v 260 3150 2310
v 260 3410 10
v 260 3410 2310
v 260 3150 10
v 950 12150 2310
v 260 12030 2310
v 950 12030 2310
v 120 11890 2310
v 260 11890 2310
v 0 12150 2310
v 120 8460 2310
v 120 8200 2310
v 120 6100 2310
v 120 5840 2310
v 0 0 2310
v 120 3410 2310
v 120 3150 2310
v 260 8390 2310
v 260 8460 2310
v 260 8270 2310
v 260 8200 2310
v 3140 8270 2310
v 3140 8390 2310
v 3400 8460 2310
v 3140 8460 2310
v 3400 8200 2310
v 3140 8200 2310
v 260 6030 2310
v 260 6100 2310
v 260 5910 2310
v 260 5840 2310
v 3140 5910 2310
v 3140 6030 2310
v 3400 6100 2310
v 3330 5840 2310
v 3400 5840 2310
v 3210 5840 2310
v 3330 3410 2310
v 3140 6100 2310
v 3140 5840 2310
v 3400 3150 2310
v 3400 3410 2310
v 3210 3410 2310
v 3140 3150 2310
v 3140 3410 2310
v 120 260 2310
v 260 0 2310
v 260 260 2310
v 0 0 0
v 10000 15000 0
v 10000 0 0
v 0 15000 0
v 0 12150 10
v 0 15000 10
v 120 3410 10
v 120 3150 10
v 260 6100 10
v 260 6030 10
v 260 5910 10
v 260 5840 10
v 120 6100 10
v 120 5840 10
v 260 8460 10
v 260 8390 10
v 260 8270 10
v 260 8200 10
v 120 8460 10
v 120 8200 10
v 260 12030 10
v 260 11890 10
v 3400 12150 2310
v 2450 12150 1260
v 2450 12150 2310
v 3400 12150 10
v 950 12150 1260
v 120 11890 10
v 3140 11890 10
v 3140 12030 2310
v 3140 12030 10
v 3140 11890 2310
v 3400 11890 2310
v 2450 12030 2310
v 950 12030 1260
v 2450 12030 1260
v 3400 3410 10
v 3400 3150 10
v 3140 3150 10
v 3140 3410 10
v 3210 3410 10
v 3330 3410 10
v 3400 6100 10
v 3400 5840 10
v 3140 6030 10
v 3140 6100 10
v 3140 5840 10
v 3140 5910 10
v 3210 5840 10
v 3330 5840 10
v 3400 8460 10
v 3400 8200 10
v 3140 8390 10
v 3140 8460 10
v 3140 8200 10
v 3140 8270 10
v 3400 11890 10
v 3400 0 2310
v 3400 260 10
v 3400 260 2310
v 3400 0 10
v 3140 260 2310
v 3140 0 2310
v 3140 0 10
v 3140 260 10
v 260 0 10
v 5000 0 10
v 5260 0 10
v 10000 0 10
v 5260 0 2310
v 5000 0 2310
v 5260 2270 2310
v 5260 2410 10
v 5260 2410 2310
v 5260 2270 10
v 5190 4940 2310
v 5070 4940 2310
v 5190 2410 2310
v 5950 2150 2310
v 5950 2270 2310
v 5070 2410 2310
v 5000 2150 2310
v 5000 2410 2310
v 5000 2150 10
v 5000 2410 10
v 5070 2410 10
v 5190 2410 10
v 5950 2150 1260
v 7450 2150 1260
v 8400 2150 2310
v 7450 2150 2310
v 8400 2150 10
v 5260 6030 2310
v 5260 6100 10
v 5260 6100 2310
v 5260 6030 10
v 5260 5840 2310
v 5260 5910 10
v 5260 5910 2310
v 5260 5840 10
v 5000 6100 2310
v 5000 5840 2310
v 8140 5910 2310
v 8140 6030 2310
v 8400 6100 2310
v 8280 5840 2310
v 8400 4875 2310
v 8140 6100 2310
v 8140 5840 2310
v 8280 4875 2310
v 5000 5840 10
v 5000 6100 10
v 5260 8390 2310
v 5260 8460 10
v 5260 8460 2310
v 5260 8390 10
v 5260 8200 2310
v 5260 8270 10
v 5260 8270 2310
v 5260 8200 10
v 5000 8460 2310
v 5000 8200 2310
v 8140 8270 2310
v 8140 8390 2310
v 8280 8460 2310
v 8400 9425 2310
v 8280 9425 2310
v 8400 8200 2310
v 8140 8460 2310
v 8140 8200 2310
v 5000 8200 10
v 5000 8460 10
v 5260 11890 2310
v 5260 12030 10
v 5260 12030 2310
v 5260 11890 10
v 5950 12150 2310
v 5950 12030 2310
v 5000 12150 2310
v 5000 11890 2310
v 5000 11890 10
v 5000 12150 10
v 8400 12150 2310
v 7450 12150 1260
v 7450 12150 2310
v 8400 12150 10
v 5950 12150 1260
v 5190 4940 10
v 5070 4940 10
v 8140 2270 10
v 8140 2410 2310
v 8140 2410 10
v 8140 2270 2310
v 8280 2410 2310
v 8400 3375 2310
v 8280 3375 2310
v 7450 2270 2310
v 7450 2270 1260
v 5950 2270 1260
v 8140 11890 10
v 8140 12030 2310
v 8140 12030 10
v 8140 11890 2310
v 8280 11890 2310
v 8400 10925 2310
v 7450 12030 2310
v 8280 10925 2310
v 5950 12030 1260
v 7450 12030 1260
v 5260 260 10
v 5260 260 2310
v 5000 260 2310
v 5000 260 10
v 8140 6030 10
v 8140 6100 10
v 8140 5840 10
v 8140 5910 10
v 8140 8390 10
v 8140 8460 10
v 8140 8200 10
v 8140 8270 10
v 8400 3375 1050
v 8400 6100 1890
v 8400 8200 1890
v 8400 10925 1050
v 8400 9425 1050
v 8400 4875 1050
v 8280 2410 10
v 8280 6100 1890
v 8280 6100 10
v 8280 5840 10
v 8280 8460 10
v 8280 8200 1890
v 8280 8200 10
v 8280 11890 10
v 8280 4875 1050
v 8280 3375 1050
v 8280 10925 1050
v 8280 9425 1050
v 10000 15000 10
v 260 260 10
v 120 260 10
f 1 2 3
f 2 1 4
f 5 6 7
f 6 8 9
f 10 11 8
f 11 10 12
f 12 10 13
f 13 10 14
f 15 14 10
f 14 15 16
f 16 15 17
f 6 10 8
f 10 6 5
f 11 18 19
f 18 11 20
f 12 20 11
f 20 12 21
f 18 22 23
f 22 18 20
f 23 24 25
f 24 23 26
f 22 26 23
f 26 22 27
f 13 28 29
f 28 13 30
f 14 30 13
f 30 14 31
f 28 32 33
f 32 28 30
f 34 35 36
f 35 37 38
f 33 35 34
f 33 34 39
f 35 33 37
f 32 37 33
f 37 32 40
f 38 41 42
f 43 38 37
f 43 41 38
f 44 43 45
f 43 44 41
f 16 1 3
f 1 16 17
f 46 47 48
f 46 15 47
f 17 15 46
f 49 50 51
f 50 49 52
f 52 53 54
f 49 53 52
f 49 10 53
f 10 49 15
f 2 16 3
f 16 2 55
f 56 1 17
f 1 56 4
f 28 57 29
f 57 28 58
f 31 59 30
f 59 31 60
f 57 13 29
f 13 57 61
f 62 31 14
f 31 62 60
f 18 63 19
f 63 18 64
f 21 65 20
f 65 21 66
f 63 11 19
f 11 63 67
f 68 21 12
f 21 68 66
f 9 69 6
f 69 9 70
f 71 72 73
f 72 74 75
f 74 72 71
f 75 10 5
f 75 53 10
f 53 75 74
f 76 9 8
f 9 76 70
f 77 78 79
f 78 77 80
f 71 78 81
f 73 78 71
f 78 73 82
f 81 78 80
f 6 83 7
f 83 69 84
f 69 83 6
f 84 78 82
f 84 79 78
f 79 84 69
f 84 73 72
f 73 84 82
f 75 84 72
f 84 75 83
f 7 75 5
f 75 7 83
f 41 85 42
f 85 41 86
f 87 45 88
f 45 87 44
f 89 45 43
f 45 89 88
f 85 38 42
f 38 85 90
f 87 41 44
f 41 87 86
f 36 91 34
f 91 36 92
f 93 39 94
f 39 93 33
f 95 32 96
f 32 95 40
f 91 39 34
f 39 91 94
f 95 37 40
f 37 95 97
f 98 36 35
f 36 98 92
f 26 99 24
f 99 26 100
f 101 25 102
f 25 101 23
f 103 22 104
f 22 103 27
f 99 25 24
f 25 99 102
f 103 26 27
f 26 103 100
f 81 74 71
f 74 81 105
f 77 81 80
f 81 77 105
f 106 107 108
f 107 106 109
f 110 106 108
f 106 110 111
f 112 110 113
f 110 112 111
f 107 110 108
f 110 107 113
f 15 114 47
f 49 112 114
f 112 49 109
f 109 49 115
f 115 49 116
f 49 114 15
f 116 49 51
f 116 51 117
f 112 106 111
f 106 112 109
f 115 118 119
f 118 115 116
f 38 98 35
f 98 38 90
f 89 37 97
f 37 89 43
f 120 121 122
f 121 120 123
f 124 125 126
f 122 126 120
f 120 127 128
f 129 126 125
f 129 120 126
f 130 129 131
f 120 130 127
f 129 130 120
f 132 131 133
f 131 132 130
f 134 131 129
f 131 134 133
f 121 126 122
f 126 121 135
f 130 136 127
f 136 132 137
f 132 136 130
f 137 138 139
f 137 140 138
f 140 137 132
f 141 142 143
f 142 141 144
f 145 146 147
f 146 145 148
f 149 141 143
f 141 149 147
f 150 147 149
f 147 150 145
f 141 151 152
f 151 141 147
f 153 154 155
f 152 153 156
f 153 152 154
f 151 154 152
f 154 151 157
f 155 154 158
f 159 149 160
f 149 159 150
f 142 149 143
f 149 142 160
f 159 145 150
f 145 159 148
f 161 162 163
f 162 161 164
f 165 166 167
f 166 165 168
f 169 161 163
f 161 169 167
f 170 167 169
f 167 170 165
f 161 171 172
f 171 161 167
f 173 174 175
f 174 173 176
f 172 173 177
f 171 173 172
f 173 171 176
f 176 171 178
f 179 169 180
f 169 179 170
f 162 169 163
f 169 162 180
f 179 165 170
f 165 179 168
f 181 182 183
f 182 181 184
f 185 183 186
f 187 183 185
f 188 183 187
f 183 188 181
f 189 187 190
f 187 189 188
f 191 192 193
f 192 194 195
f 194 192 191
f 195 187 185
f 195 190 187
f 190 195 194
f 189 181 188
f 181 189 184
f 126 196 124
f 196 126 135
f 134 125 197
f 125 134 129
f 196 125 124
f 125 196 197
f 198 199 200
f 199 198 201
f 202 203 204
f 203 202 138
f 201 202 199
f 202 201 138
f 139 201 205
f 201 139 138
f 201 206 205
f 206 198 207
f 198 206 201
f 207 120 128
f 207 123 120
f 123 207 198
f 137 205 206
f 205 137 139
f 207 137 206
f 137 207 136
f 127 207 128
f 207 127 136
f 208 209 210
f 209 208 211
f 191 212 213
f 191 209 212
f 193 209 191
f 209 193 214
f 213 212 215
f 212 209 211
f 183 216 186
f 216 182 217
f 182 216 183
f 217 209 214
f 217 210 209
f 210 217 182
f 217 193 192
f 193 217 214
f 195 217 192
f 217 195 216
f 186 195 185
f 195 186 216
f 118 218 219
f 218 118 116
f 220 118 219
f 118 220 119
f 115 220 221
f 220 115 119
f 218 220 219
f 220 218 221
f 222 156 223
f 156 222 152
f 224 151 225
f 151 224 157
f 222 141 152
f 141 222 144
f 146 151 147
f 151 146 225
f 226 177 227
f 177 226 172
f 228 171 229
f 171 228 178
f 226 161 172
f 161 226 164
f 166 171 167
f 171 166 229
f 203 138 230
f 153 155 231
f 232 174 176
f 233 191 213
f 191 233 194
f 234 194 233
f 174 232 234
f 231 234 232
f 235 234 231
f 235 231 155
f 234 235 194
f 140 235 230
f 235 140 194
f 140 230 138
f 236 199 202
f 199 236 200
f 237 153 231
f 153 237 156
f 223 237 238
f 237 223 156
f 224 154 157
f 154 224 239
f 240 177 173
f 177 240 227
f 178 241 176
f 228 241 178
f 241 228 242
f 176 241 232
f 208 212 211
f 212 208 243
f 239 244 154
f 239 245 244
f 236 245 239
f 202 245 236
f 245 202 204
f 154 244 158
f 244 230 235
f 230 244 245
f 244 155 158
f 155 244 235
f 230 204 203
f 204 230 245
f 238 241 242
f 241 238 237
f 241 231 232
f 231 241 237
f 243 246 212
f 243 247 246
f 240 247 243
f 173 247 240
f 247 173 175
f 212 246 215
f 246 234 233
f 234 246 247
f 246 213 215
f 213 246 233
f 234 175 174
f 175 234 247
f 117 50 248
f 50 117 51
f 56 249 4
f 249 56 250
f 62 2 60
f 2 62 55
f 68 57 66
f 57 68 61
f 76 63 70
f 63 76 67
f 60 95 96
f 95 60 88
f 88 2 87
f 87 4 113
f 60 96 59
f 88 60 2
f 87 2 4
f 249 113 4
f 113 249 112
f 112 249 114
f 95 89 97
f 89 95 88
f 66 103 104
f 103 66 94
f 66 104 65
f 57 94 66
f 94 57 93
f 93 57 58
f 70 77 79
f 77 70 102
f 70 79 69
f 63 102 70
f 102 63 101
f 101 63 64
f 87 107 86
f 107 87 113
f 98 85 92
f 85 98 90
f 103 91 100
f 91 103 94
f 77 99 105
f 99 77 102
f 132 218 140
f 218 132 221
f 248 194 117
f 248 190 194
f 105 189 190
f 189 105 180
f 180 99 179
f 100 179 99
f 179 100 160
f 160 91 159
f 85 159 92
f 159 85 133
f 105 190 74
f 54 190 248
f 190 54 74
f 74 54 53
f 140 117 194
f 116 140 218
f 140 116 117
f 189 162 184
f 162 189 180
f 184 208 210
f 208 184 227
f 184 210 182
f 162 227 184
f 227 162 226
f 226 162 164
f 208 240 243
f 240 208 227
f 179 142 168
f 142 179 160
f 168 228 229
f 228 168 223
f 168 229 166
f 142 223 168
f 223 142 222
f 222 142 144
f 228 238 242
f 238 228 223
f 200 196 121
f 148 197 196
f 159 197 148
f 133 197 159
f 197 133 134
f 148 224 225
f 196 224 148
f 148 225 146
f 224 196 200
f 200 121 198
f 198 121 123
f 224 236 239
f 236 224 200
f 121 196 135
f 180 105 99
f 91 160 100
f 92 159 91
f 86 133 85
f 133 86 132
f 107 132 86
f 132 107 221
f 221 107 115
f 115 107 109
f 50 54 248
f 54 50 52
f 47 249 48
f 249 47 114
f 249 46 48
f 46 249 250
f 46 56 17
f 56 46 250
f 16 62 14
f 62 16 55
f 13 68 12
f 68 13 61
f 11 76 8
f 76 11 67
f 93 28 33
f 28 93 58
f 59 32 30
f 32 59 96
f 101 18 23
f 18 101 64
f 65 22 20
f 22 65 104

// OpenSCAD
terrenoAncho=10000;
terrenoLargo=15000;

junta=10;
block=200;
jblock=junta+block;
muro=120;
columna=260;
//altura=2600;
altura=jblock*11;
echo(altura);
centroColumna=(columna-muro)/2;

anchoVentana=1500;

// límite de terreno
cube([terrenoAncho, terrenoLargo, 10]);

// muro de medida
//translate([-muro, 0, 0])
//cube([muro, 12150, altura]);

function SumArray(x=0,Index=0)=x[Index]+((Index<=0)?0:SumArray(x=x,Index=Index-1));
function Sum(x)=SumArray(x,Index=len(x)-1);

module columnas(tramos=[]) {
    for(x=[0: len(tramos)-1]) {
        //echo(x, (columna*x)+SumArray(muros, x));
        translate([0, (columna*x)+SumArray(tramos, x), 0])
        cube([columna, columna, altura]);
    }
}

mx1=[2890,2430,2100,3430];
mx2=[1890,3430,2100,3430];
my=[2880,1600,2880];

// fila 1 de columnas en x
cube([columna, columna, altura]);
translate([0, columna, 0])
columnas(mx1);

// muro 1.1 x
translate([0, columna, 0])
cube([muro, mx1[0], altura]);

// muro 1.2 x
translate([0, (columna*2)+SumArray(mx1,0), 0])
cube([muro, mx1[1], altura]);

// muro 1.3 x
translate([0, (columna*3)+SumArray(mx1,1), 0])
cube([muro, mx1[2], altura]);

// muro 1.4 x
translate([0, (columna*4)+SumArray(mx1,2), 0])
cube([muro, mx1[3], altura]);

// muro 1.3 y
translate([columna, SumArray(mx1,1)+(columna*2)+centroColumna, 0])
cube([my[0], muro, altura]);

// muro 1.4 y
translate([columna, SumArray(mx1,2)+(columna*3)+centroColumna, 0])
cube([my[0], muro, altura]);

// muro 1.5 y (ventana)
translate([columna, SumArray(mx1,3)+(columna*5)-muro, 0])
union() difference() {
    cube([my[0], muro, altura]);
    
    translate([(my[0]-anchoVentana)/2, -1, jblock*6])
    cube([anchoVentana, muro+2, jblock*5]);
}


// fila 2
translate([columna+SumArray(my,0), 0, 0])
union() {
    // columnas en x
    cube([columna, columna, altura]);

    translate([0, columna, 0])
    columnas(mx1);
        
    // muro 2.2 x
    translate([centroColumna, (columna*2)+SumArray(mx1,0), 0])
    cube([muro, mx1[1], altura]);
}


// fila 3
translate([(columna*2)+SumArray(my,1), 0, 0])
union() {
    // columnas en x
    cube([columna, columna, altura]);
    
    translate([0, columna, 0])
    columnas(mx2);
        
    // muro 3.2 x (puerta)
    translate([centroColumna, (columna*2)+SumArray(mx2,0), 0])
    union() difference() {
        cube([muro, mx2[1], altura]);
        
        translate([-1, mx2[1]-900, 0])
        cube([muro+2, 900, altura]);
    }
    
    // muro 3.2 y (ventana)
    translate([columna, SumArray(mx2,0)+(columna*1), 0])
    union() difference() {
        cube([my[2], muro, altura]);
        
        translate([(my[2]-anchoVentana)/2, -1, jblock*6])
        cube([anchoVentana, muro+2, jblock*5]);
    }

    // muro 3.3 y
    translate([columna, SumArray(mx2,1)+(columna*2)+centroColumna, 0])
    cube([my[2], muro, altura]);

    // muro 3.4 y
    translate([columna, SumArray(mx2,2)+(columna*3)+centroColumna, 0])
    cube([my[2], muro, altura]);

    // muro 3.5 y (ventana)
    translate([columna, SumArray(mx2,3)+(columna*5)-muro, 0])
    union() difference() {
        cube([my[2], muro, altura]);
        
        translate([(my[2]-anchoVentana)/2, -1, jblock*6])
        cube([anchoVentana, muro+2, jblock*5]);
    }
}


// fila 4
translate([(columna*3)+SumArray(my,2), 0, 0])
union() {
    translate([0, columna, 0])
    columnas(mx2);
    
    // muro 4.2 x (ventana)
    translate([columna-muro, (columna*2)+SumArray(mx2,0), 0])
    union() difference() {
        cube([muro, mx2[1], altura]);
        
        translate([-1, (mx2[1]-anchoVentana)/2, jblock*5])
        cube([muro+2, anchoVentana, jblock*6]);
    }
    
    // muro 4.3 x (ventana baño)
    translate([columna-muro, (columna*3)+SumArray(mx2,1), 0])
    union() difference() {
        cube([muro, mx2[2], altura]);
        
        translate([-1, 0, jblock*9])
        cube([muro+2, mx2[2], jblock*2]);
    }
    
    // muro 4.4 x (ventana)
    translate([columna-muro, (columna*4)+SumArray(mx2,2), 0])
    union() difference() {
        cube([muro, mx2[3], altura]);
        
        translate([-1, (mx2[3]-anchoVentana)/2, jblock*5])
        cube([muro+2, anchoVentana, jblock*6]);
    }
}
